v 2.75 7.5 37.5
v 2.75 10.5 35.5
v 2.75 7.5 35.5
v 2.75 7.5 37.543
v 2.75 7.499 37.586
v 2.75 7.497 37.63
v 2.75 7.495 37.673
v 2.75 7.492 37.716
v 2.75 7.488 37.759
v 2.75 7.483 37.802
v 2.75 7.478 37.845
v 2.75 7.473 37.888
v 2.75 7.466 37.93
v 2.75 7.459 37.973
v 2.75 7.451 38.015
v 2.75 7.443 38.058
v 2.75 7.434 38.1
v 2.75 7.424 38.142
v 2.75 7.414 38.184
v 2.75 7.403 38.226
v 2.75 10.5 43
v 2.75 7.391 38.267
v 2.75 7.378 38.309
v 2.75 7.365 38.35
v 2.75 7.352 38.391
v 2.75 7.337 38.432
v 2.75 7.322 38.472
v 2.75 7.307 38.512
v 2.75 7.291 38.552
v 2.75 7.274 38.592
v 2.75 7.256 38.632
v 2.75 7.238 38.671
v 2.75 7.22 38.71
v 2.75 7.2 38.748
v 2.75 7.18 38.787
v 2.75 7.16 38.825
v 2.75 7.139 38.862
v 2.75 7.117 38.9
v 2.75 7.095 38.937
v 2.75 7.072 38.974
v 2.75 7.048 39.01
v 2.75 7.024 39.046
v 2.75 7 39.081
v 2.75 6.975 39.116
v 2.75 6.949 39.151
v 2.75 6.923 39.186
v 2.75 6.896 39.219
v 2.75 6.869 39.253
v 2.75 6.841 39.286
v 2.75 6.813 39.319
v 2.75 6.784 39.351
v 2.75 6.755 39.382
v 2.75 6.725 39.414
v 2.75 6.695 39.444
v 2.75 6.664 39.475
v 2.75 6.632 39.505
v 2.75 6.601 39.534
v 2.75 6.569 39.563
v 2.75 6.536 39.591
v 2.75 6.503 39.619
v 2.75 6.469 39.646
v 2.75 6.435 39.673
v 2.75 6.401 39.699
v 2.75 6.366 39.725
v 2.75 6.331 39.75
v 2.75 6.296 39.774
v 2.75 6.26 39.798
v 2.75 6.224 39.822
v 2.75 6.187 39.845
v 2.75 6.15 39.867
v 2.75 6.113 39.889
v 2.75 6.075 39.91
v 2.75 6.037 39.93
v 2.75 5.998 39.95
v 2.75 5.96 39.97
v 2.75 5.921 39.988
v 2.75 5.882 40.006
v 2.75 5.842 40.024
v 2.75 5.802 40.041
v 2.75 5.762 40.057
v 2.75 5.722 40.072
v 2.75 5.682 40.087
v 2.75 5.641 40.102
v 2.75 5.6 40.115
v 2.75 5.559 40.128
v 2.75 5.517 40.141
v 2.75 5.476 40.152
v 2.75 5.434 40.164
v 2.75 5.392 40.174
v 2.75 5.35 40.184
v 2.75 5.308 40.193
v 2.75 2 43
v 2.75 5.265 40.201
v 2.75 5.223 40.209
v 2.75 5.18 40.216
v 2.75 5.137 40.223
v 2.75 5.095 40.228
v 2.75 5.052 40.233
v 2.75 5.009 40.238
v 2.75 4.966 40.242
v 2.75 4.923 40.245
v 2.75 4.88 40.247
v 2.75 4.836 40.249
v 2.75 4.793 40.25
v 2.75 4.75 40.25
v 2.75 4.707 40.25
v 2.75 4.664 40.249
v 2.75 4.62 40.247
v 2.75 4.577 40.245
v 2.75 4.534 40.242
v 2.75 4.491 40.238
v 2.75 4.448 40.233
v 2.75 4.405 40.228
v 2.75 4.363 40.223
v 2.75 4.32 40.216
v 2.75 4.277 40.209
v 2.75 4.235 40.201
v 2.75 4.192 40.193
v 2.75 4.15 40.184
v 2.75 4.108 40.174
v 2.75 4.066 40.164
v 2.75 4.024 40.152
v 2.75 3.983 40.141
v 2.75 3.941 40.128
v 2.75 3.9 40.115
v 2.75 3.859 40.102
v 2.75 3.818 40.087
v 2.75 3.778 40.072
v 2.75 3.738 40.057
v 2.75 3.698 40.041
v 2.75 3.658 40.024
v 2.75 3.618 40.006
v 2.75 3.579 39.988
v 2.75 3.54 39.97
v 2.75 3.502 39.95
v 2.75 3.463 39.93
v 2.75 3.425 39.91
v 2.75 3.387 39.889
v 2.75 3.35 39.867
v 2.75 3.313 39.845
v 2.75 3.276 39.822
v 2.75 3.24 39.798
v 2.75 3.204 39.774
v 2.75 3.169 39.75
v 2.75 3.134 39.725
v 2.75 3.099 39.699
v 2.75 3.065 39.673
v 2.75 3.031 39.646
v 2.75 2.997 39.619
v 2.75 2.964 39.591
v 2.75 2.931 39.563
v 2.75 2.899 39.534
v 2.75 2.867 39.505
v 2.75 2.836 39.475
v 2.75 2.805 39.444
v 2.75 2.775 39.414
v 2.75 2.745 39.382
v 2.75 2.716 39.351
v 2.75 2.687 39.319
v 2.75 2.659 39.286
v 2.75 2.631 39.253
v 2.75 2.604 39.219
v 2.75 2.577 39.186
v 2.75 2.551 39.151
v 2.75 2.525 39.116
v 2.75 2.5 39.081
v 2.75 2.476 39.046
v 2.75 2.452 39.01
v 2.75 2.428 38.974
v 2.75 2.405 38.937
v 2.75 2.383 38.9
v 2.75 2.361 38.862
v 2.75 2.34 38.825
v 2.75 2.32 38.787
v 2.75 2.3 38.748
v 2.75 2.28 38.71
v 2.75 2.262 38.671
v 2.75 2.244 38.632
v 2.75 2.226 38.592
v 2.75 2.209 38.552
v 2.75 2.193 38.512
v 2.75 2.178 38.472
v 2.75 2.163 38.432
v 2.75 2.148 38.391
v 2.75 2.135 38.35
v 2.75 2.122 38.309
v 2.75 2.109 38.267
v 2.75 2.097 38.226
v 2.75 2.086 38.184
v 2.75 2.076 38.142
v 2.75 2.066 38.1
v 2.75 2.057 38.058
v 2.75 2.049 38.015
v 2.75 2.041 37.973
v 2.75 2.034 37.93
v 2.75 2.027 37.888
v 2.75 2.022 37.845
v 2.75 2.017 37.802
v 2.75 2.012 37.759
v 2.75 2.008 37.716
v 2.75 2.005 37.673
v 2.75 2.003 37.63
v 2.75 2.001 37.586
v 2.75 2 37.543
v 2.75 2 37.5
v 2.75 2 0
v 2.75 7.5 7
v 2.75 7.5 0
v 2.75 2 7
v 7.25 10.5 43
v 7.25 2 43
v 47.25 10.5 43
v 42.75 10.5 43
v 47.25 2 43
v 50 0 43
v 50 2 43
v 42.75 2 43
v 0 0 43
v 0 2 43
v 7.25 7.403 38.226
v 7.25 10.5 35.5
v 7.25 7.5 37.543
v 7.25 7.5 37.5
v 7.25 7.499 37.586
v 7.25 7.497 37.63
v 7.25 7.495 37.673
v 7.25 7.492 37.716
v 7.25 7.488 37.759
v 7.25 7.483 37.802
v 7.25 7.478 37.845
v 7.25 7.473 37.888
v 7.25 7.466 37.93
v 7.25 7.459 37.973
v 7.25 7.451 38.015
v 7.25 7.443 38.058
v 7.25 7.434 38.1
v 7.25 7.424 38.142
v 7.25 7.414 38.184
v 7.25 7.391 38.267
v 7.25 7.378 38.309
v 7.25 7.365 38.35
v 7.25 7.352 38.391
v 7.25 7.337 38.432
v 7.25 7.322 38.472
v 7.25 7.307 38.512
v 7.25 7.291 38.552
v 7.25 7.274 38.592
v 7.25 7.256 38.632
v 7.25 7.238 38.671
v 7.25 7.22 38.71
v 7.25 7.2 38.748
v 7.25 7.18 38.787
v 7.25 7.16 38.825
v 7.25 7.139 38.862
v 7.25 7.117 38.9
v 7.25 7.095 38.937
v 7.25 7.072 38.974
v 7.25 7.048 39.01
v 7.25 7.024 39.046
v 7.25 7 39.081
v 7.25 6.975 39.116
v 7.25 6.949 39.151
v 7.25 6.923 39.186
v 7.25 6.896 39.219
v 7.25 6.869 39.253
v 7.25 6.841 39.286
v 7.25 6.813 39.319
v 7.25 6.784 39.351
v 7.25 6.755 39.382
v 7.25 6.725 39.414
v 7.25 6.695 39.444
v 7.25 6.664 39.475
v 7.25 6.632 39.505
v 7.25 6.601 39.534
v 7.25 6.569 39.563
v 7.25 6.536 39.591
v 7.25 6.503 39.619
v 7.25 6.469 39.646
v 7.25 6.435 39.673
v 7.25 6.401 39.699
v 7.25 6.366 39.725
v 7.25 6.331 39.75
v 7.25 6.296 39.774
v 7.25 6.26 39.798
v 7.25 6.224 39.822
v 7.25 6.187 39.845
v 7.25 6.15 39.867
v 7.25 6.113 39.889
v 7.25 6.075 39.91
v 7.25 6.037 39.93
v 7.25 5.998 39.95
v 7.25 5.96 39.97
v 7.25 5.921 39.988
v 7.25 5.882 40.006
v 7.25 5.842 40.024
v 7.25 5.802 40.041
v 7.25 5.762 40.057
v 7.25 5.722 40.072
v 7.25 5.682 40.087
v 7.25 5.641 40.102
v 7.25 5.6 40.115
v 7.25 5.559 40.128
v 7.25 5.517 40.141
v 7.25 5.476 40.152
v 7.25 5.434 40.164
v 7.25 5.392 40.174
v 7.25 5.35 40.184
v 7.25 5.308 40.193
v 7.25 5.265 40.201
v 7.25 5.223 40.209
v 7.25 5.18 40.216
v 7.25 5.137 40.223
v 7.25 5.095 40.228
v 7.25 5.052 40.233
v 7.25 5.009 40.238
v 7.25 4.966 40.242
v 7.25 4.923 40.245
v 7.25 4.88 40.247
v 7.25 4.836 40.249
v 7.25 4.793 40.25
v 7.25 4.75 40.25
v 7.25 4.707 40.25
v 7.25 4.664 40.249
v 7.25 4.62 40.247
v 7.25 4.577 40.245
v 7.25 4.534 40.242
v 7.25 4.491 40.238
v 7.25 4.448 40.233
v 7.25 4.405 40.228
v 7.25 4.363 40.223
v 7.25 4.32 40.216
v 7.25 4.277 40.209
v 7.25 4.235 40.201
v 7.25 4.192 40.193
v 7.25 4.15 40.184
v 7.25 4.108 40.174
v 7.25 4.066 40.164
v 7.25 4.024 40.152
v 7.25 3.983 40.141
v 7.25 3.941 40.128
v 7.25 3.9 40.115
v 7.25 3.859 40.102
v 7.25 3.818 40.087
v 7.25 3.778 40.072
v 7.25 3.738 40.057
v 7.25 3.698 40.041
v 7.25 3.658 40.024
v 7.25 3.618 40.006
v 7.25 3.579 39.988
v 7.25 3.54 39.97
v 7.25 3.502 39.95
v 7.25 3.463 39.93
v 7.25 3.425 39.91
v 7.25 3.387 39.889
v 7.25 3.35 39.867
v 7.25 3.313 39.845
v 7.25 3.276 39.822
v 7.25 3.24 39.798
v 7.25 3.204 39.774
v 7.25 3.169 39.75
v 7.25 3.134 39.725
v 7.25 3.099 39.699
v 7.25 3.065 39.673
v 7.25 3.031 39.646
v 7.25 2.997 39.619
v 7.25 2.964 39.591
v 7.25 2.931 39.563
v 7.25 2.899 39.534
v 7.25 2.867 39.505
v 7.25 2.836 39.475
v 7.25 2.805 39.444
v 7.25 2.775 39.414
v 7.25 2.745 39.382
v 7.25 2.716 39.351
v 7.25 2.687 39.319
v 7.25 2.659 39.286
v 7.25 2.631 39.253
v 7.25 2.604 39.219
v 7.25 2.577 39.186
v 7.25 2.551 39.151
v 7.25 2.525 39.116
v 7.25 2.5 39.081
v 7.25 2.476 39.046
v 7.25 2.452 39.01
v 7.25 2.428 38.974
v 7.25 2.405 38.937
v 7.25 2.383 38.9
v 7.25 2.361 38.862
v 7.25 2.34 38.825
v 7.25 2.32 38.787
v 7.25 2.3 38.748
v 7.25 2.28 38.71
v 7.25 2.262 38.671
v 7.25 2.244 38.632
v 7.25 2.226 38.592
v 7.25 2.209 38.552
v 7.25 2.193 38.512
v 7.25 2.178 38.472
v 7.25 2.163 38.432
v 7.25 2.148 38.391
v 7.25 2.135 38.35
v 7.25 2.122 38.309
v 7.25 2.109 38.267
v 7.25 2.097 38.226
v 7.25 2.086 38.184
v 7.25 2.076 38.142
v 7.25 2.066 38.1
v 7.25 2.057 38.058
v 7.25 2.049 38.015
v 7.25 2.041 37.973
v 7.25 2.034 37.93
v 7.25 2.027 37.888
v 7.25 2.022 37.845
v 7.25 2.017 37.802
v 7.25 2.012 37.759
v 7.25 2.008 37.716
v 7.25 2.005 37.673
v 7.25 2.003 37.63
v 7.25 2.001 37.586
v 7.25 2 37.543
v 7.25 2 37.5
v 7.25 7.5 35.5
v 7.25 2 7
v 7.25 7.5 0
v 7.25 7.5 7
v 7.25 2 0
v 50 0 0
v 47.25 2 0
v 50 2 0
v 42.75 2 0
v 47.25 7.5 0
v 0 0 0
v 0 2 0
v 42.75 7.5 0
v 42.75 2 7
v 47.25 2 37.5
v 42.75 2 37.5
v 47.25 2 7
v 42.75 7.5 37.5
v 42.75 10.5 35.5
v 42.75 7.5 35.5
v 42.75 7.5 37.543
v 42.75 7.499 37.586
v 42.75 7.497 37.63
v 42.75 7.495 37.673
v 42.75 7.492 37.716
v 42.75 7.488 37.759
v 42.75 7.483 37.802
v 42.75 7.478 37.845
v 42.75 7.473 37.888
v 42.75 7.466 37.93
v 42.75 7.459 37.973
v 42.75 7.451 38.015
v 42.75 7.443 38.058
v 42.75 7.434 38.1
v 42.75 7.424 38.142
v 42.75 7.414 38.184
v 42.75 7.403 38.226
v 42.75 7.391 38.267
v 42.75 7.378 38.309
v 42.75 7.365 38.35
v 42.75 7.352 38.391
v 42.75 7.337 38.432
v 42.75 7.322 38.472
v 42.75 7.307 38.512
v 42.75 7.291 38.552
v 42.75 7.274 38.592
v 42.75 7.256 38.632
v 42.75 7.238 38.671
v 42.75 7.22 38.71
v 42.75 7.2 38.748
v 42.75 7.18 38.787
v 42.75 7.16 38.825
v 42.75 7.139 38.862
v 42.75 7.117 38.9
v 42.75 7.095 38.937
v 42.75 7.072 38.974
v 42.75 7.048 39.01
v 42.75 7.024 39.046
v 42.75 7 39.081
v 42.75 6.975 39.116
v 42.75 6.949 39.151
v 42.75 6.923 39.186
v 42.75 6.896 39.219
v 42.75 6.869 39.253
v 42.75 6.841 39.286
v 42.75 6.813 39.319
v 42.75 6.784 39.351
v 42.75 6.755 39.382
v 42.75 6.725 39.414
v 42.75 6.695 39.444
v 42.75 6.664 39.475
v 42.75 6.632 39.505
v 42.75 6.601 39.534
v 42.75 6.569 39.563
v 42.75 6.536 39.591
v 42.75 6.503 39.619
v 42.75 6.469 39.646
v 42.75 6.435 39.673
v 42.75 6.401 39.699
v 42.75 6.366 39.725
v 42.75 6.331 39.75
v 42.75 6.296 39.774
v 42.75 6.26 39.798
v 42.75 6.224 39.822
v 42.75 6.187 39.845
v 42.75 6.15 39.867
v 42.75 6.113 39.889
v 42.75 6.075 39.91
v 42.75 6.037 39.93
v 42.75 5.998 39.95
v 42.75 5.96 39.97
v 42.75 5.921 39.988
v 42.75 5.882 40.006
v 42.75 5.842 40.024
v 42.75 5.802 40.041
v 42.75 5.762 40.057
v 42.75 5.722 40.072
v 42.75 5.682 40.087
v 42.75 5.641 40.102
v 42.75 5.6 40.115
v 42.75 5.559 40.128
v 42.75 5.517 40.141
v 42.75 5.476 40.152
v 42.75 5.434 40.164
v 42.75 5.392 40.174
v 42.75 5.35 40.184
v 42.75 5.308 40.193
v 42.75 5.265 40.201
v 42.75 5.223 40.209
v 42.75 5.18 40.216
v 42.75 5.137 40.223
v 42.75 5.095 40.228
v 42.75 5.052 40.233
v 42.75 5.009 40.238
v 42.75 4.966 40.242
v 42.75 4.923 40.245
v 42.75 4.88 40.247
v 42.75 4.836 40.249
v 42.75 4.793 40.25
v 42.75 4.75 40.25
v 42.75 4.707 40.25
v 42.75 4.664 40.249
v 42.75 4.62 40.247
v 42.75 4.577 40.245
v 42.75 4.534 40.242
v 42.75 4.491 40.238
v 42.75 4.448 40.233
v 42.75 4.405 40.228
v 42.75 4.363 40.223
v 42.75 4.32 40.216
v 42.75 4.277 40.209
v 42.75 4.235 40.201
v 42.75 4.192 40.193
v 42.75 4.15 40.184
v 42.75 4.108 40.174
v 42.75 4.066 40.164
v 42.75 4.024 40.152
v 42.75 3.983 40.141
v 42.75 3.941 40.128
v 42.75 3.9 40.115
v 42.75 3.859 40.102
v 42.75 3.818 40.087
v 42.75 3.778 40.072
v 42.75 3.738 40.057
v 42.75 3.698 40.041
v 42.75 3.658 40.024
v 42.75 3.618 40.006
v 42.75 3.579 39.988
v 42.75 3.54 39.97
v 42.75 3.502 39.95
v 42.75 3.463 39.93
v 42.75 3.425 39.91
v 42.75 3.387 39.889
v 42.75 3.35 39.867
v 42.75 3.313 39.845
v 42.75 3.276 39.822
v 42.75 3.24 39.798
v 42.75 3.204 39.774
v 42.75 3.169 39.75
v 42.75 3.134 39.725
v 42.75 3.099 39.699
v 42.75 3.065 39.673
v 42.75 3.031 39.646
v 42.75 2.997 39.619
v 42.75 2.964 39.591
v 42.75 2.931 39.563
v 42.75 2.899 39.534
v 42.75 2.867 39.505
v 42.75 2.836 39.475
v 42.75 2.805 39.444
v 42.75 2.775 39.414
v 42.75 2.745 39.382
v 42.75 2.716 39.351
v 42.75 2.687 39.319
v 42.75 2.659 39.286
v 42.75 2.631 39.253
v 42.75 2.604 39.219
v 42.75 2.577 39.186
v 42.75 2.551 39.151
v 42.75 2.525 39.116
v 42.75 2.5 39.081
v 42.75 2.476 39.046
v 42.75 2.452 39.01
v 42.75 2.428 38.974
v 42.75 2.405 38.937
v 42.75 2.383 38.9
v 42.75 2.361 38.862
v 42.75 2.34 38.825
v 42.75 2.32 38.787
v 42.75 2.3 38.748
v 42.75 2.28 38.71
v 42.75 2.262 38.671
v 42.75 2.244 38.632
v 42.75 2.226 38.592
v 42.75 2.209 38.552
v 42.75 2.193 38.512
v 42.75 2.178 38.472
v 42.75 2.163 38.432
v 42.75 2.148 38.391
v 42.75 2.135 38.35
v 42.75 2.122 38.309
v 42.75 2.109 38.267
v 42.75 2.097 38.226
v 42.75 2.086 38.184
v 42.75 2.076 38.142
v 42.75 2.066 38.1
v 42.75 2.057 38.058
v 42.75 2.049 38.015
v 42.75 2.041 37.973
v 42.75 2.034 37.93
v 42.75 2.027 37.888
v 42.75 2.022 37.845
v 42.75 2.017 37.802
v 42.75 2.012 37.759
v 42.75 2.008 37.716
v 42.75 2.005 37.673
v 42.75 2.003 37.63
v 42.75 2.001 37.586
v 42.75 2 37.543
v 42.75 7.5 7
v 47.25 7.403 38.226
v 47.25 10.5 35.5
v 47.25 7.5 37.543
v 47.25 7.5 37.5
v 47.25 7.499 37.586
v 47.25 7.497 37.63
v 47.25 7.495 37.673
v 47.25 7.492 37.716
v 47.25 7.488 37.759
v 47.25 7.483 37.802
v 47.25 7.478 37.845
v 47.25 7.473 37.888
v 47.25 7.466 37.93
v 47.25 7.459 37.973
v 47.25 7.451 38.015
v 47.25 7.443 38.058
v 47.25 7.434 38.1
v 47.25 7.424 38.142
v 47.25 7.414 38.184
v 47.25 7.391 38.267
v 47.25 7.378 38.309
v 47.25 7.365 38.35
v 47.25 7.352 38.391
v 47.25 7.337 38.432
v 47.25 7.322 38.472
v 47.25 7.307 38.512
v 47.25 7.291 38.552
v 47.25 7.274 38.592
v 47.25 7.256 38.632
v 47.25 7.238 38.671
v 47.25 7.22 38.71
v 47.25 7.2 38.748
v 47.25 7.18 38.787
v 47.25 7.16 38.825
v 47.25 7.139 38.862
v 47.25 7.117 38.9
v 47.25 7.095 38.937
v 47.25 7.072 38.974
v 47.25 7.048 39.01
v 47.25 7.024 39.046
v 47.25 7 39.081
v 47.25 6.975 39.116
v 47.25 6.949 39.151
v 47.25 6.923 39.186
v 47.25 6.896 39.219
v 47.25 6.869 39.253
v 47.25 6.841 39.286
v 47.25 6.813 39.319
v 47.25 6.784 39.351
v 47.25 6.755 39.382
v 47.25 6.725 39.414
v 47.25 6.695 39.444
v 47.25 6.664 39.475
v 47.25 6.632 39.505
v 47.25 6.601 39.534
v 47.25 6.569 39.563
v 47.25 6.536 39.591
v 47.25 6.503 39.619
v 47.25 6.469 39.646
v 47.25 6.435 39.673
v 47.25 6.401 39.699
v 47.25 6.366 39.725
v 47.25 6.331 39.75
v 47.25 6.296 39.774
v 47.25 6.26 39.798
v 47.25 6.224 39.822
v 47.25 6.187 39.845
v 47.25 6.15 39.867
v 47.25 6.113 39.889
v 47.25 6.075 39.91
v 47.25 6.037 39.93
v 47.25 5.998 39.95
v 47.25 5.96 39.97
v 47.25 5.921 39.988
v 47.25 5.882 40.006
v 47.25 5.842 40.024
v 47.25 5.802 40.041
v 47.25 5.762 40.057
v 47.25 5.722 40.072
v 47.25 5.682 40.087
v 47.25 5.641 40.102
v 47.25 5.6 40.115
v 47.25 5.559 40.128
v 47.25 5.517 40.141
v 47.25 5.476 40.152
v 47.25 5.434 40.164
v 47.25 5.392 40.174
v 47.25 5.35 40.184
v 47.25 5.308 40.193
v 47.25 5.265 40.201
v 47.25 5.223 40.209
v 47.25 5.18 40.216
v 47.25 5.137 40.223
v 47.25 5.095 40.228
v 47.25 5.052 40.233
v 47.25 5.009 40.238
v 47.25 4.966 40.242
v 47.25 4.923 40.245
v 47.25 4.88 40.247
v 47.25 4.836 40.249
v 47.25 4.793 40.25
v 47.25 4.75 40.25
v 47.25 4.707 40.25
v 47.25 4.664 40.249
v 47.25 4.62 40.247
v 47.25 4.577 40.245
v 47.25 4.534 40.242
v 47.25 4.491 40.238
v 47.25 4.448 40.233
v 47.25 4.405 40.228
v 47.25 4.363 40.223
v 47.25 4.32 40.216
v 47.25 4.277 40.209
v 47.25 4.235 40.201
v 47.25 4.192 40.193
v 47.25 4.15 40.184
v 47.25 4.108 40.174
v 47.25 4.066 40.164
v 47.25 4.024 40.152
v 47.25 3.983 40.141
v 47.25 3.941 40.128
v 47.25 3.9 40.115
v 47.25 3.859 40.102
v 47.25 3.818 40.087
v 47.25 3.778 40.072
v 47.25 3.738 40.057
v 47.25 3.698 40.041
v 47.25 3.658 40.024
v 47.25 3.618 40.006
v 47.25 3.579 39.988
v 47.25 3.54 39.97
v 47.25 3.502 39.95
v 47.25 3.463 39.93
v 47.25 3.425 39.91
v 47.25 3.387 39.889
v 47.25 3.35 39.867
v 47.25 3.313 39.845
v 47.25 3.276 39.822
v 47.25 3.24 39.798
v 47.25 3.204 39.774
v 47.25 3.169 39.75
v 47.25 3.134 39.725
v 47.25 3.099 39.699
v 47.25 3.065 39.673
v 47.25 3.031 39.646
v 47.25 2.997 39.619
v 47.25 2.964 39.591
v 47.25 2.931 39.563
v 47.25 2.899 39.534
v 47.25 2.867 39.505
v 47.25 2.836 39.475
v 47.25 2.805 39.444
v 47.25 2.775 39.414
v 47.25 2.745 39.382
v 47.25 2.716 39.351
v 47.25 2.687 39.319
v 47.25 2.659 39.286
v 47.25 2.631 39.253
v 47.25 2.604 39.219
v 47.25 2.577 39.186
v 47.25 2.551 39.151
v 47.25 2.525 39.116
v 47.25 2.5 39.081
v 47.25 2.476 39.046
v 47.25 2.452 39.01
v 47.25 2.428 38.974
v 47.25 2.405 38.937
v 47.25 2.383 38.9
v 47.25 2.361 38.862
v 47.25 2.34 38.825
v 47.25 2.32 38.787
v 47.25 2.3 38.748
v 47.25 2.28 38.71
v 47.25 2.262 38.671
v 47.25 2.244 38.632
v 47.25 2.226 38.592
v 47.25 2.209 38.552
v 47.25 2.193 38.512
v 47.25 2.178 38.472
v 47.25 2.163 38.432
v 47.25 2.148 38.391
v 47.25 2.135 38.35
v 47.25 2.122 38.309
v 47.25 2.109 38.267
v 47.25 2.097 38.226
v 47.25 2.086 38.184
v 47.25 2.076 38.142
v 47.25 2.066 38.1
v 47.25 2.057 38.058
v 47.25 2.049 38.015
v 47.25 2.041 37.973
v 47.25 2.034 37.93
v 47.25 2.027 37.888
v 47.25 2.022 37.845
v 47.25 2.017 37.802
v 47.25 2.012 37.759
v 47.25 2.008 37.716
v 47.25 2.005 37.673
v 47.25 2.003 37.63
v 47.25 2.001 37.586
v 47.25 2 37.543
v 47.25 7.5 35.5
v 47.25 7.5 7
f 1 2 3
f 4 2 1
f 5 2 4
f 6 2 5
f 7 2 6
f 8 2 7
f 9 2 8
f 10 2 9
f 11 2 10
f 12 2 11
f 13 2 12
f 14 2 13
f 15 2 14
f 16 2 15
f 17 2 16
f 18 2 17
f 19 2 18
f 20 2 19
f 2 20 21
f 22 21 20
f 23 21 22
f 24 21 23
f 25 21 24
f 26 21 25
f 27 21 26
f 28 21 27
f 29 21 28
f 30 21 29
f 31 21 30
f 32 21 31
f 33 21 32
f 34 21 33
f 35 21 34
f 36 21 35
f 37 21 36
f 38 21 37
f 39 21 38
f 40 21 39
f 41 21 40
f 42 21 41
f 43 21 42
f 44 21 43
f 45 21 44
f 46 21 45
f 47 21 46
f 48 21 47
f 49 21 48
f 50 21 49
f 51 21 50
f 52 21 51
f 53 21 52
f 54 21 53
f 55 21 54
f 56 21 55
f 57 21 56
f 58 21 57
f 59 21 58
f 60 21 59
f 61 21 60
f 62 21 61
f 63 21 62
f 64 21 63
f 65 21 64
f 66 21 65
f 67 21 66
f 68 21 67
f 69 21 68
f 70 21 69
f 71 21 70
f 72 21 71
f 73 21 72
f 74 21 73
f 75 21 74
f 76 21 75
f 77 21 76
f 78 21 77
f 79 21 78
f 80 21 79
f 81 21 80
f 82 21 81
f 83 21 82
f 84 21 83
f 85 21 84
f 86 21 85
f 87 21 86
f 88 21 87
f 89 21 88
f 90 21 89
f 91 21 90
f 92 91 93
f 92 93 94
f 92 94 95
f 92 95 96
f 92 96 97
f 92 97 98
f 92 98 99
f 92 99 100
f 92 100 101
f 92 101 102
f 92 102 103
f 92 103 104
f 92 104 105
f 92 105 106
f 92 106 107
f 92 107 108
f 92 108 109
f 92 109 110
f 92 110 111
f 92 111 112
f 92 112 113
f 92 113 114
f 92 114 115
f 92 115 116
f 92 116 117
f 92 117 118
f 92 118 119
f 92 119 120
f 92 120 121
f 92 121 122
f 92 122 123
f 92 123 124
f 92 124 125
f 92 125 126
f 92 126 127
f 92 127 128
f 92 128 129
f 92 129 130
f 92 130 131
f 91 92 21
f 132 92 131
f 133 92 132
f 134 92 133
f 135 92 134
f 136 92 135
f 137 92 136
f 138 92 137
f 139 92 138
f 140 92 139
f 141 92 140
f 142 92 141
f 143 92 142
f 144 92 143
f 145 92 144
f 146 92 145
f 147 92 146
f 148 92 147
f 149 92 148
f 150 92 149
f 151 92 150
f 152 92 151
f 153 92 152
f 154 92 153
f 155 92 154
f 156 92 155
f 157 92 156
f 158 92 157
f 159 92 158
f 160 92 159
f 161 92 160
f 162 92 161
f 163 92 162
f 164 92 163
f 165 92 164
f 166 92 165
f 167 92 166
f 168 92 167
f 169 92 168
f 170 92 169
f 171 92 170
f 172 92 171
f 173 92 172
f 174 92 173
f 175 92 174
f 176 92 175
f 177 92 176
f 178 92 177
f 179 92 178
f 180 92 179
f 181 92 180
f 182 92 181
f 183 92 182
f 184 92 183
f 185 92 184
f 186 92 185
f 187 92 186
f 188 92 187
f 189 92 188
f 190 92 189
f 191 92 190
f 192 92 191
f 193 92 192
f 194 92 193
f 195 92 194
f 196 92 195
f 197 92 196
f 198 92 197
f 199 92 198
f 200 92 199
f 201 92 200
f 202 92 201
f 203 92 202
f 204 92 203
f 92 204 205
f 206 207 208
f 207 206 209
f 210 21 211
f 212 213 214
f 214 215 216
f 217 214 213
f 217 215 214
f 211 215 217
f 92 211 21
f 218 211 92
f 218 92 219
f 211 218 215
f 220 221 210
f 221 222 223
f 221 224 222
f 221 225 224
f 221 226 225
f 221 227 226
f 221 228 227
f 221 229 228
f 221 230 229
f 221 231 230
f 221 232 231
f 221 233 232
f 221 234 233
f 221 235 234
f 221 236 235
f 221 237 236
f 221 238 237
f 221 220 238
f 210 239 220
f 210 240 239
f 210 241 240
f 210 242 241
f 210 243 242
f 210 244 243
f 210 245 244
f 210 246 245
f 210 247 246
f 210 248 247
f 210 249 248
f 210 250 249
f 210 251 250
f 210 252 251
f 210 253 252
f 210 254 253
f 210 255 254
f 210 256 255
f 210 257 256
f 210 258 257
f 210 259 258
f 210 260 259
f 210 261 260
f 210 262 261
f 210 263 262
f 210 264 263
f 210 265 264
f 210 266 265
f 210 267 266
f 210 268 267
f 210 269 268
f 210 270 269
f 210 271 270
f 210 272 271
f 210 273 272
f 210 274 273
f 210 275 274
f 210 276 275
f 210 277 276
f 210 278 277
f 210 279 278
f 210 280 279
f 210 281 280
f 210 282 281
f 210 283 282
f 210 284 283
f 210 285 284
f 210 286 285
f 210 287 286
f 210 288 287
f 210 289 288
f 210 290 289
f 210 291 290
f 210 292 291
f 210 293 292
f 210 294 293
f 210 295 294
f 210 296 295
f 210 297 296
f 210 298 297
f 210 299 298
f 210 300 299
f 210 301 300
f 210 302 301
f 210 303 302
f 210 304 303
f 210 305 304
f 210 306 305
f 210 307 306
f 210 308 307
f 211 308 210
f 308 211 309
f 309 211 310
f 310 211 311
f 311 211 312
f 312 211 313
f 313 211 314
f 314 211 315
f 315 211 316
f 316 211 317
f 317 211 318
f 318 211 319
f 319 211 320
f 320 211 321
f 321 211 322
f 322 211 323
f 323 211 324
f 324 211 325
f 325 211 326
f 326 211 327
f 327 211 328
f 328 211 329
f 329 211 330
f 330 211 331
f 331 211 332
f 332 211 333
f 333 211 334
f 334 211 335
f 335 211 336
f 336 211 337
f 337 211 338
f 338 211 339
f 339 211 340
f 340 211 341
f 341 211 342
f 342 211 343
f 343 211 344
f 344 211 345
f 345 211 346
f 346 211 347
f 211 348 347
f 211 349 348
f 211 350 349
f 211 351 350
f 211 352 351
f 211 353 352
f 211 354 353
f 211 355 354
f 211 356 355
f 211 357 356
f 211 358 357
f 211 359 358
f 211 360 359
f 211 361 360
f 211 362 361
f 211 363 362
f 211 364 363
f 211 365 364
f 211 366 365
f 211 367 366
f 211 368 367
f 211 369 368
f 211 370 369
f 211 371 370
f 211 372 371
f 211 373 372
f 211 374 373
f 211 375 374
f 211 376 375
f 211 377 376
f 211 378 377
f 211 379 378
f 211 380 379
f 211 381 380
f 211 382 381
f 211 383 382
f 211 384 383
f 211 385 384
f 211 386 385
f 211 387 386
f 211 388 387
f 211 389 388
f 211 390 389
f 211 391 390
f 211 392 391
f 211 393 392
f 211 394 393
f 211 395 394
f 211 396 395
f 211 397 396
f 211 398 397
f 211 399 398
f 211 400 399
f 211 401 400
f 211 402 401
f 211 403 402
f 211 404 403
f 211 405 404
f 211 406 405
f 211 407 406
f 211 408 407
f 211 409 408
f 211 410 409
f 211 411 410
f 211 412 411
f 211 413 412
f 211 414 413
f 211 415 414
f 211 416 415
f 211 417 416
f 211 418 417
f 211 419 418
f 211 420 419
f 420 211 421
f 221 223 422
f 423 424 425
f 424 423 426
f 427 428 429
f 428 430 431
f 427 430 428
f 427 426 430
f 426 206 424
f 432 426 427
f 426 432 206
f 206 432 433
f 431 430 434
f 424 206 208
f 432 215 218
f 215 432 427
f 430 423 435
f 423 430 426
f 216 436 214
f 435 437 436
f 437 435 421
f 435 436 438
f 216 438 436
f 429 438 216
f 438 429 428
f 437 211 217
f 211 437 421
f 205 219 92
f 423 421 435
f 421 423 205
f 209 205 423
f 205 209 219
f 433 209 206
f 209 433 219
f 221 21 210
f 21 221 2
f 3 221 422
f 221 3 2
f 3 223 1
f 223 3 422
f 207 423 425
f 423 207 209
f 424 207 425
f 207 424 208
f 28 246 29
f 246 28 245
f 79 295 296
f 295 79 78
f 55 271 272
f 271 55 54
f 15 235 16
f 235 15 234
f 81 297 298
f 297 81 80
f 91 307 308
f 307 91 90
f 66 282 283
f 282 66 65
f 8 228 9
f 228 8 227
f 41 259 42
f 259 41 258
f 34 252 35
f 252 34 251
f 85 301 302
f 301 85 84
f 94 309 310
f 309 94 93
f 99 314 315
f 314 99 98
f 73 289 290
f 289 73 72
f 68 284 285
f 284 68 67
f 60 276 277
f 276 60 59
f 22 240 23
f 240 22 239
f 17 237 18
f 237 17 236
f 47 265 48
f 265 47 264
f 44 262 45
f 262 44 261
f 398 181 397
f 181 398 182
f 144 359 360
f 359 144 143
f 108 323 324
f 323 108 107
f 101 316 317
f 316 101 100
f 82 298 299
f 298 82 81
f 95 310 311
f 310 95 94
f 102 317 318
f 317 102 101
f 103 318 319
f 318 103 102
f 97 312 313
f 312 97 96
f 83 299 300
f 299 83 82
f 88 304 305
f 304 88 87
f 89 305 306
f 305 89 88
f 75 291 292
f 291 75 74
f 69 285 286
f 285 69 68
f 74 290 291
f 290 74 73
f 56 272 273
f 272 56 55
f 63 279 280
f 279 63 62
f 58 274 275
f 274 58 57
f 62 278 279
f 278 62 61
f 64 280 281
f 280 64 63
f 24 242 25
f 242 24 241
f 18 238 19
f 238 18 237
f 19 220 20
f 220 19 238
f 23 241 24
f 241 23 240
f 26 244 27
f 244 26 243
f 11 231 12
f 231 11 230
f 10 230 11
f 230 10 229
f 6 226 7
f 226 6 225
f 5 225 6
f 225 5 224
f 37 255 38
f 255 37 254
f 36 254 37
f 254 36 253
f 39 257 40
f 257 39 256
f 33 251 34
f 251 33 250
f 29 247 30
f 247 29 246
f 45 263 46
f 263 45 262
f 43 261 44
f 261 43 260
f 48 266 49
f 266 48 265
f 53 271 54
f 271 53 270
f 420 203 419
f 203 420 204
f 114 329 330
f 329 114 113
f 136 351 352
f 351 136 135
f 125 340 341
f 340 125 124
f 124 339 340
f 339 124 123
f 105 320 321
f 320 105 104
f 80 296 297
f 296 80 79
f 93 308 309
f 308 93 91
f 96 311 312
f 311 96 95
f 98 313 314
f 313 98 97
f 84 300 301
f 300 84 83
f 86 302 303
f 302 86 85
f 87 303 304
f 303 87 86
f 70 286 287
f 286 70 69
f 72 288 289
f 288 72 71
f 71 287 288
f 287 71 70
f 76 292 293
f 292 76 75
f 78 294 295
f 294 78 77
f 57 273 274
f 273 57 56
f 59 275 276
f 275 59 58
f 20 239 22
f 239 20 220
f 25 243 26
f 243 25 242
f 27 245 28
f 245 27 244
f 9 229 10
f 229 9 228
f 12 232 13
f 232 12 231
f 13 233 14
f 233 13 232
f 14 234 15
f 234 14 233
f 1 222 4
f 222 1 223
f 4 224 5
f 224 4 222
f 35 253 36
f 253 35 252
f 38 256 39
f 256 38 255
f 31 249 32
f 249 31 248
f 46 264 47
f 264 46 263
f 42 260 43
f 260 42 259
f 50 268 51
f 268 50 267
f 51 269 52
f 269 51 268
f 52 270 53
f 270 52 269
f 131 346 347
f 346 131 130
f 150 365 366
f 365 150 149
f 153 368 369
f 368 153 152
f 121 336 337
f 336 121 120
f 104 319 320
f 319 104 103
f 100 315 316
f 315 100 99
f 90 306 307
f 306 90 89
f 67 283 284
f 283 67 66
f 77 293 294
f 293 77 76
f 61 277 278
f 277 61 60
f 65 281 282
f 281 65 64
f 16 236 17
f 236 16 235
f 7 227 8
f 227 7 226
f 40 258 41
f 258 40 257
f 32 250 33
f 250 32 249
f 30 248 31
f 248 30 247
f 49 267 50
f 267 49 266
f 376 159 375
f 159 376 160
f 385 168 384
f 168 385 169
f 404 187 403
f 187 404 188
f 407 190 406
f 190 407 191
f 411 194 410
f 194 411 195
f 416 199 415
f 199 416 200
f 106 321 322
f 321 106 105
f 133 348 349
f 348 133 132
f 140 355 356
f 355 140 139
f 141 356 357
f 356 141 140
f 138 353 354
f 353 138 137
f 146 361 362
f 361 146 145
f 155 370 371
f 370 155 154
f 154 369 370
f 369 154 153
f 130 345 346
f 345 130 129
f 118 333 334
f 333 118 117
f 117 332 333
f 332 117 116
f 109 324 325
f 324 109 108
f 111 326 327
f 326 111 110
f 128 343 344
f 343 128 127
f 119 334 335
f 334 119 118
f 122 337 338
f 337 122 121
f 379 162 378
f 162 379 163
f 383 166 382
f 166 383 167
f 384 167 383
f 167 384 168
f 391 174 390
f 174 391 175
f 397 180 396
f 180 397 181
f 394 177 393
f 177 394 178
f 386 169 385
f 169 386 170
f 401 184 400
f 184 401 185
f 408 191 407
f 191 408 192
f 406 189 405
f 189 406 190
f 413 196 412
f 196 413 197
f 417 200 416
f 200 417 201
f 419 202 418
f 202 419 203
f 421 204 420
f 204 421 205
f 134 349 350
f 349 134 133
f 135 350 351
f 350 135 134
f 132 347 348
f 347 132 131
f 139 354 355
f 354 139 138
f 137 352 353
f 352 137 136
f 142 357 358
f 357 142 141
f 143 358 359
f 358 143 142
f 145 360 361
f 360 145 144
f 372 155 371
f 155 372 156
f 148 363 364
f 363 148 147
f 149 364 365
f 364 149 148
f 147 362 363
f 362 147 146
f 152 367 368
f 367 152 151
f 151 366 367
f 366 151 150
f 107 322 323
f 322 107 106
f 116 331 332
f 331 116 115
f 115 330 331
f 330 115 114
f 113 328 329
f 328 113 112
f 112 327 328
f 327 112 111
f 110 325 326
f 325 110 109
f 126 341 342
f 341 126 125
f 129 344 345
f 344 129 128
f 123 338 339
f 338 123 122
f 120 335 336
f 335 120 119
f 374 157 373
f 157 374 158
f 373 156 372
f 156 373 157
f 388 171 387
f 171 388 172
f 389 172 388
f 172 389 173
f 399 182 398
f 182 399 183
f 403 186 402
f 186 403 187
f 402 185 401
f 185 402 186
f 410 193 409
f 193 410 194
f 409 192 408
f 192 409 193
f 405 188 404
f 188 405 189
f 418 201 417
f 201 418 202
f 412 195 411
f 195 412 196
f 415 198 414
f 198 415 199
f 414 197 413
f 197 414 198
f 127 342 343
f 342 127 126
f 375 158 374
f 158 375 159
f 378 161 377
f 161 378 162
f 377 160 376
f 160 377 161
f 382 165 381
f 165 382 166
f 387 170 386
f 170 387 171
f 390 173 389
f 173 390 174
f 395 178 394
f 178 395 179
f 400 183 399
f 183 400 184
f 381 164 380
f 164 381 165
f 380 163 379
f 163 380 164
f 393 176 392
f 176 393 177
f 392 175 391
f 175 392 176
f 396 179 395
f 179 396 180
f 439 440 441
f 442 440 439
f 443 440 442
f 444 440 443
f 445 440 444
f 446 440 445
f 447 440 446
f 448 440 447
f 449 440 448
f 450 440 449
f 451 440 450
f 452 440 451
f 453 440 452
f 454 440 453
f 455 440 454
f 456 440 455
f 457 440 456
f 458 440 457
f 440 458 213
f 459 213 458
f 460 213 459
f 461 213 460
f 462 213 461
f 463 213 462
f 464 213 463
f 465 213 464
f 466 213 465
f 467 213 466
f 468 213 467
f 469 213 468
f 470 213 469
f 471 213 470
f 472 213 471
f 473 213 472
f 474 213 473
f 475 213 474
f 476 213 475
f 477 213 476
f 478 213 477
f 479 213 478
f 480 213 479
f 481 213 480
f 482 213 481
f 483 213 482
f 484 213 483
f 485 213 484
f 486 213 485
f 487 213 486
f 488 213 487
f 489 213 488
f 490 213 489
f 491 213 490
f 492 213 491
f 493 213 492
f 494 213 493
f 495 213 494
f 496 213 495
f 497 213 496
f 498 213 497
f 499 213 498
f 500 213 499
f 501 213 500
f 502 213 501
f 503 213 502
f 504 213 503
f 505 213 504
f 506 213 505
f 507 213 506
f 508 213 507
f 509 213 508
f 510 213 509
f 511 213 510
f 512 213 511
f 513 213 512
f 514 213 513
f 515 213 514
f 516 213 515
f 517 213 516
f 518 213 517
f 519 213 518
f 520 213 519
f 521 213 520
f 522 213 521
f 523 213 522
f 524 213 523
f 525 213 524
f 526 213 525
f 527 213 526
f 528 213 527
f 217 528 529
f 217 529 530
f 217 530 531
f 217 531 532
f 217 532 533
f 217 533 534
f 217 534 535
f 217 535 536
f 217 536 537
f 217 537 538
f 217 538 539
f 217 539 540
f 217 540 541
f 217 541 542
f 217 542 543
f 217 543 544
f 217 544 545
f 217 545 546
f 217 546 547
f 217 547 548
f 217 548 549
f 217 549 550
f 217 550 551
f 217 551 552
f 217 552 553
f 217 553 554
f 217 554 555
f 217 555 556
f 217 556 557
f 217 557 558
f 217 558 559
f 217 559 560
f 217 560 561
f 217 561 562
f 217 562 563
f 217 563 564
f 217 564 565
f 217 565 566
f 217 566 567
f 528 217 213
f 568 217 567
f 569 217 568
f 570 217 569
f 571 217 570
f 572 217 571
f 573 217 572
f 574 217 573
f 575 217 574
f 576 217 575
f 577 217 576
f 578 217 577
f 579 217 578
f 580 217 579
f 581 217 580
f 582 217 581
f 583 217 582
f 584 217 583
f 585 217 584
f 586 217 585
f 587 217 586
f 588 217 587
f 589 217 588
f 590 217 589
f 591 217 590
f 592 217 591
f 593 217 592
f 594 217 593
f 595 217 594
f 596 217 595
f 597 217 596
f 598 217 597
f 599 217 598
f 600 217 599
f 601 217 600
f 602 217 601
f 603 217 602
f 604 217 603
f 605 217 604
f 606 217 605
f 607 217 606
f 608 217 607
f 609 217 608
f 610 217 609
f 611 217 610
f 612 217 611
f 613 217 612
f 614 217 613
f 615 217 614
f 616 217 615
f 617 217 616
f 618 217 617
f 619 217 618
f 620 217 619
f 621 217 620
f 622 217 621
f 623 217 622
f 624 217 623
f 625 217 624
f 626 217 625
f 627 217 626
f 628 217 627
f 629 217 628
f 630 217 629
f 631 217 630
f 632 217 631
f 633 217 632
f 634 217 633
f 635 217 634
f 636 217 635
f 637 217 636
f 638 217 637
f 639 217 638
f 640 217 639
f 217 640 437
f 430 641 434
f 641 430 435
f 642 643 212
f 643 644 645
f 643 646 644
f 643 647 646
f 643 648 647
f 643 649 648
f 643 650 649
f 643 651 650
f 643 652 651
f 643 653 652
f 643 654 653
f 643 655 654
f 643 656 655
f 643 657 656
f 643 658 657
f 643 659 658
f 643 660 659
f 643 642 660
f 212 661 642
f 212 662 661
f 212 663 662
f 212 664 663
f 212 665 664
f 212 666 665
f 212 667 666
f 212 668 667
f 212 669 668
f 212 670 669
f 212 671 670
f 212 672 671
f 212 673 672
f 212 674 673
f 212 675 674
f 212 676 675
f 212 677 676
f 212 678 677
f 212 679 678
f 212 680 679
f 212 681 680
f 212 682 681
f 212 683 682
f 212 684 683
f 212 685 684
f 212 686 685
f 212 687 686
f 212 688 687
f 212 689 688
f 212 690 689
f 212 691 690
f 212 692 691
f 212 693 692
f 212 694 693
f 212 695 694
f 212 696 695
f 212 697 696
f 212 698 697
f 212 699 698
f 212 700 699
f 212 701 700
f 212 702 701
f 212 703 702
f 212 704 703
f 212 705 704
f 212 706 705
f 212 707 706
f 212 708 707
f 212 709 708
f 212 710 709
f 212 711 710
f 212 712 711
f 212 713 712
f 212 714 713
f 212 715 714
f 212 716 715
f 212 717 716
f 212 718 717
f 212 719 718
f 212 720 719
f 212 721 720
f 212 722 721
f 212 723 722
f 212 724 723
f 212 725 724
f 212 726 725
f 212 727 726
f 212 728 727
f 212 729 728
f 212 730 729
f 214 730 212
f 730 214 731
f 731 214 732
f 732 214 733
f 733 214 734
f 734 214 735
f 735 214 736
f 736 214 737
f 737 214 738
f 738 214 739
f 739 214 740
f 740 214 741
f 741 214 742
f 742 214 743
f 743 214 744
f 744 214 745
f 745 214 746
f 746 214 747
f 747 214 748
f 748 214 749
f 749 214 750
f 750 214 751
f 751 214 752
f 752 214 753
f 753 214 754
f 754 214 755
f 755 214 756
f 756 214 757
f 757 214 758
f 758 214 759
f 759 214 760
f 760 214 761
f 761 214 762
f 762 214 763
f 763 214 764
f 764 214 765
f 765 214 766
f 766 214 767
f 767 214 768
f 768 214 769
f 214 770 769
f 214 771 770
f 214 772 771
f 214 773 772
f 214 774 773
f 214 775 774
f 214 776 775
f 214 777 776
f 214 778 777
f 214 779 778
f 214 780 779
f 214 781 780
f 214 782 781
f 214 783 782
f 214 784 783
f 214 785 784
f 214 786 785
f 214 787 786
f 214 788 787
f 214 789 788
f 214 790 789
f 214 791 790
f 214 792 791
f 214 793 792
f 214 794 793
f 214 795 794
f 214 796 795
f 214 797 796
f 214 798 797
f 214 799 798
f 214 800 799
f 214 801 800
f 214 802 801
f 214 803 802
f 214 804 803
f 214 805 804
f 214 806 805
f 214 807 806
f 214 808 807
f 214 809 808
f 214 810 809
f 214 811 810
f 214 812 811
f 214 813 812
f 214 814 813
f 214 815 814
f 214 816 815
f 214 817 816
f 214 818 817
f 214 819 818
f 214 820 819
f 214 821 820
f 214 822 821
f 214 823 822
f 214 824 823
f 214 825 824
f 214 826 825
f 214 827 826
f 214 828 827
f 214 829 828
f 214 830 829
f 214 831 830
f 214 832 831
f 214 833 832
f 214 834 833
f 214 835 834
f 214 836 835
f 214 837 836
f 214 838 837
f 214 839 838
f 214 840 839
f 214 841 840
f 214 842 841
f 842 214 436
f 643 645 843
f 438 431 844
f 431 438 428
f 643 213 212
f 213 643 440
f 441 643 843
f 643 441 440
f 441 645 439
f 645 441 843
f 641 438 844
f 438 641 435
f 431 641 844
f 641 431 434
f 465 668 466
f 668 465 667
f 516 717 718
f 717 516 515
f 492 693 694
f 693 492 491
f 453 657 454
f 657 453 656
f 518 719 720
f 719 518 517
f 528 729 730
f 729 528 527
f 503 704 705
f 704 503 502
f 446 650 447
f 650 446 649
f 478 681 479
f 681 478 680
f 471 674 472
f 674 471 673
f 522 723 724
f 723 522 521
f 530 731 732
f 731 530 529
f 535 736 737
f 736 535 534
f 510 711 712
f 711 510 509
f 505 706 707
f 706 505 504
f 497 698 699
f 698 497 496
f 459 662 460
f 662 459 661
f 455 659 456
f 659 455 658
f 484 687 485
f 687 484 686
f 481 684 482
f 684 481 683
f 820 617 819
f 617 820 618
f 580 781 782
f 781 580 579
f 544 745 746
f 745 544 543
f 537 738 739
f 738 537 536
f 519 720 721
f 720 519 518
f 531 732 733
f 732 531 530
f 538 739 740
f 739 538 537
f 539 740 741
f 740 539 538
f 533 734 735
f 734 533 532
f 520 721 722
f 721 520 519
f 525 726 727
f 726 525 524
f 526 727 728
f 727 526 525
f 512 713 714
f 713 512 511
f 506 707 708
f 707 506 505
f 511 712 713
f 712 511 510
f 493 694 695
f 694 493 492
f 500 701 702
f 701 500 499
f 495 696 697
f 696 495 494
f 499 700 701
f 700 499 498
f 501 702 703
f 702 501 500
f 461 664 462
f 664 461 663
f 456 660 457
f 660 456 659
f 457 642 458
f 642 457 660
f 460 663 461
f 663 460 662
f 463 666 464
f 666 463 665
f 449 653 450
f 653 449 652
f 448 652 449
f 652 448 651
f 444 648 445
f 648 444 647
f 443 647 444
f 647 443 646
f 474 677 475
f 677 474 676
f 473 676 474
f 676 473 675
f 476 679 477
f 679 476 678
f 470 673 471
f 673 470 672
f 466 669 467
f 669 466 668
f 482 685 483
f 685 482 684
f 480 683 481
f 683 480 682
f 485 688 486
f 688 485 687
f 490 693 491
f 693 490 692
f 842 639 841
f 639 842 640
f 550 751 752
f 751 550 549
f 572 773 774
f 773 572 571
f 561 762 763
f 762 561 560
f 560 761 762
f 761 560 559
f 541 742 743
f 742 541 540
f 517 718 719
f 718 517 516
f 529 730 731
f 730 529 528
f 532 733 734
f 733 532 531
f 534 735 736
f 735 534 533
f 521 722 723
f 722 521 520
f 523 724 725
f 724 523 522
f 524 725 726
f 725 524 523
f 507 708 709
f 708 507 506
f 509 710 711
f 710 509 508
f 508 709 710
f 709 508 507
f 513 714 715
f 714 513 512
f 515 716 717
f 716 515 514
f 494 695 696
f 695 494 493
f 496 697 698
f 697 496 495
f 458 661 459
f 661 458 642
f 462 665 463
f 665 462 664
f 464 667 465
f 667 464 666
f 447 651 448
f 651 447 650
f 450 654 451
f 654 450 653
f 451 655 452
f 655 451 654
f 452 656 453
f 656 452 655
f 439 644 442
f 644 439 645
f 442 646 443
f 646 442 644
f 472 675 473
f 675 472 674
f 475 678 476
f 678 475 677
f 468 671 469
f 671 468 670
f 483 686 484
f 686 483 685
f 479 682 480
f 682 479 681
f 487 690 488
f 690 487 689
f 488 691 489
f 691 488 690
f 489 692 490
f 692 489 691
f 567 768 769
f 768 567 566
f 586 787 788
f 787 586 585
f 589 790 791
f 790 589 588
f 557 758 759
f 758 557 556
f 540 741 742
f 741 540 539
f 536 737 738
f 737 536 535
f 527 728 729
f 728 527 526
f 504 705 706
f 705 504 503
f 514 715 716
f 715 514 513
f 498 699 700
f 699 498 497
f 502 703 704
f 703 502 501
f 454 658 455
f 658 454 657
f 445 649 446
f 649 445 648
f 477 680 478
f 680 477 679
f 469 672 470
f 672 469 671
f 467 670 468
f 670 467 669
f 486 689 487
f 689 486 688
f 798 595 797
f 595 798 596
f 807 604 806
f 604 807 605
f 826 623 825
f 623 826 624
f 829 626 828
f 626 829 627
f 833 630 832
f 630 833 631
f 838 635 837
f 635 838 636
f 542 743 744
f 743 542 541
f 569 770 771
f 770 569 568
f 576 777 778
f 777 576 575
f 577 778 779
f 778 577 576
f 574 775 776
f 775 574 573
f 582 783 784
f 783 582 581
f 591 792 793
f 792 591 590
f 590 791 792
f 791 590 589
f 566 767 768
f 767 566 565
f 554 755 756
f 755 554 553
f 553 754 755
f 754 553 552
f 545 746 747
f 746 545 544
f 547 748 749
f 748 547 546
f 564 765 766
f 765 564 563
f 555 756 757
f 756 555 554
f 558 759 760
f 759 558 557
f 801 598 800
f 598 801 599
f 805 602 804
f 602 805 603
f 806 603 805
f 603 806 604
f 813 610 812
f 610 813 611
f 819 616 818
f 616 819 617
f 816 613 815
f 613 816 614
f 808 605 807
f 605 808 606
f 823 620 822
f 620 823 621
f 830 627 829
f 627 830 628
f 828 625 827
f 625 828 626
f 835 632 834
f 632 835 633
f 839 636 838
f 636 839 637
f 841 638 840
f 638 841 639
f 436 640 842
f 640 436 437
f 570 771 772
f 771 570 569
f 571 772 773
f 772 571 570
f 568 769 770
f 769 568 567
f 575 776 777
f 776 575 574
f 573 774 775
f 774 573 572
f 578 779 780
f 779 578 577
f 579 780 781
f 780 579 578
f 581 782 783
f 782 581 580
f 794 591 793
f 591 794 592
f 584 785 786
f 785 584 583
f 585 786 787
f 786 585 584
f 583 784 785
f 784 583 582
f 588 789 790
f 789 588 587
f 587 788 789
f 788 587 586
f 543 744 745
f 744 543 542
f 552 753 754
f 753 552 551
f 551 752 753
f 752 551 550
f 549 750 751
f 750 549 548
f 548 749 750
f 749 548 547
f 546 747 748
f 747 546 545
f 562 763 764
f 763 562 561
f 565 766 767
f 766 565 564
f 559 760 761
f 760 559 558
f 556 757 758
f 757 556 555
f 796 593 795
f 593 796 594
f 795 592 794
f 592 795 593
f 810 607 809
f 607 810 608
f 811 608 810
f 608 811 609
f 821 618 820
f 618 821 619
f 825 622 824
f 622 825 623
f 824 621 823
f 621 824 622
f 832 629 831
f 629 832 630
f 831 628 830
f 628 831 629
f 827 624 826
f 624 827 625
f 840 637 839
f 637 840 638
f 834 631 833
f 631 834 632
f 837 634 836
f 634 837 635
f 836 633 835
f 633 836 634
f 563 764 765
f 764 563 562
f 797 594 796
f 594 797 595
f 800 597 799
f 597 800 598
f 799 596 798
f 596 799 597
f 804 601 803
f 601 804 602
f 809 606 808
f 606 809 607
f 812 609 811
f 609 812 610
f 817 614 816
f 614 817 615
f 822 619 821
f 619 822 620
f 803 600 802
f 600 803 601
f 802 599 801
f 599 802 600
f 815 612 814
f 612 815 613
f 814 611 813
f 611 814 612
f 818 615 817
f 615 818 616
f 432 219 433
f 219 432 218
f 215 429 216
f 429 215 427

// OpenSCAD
// file: IKEA Skadis include holder.scad
$fn=400;

sh_height=43;
sh_width=4.5;
sh_hanger_spacing=5.5;
sh_material_size=2;
sh_short_tail=2;

module ikea_skadis_holder() {
    difference() {
        union() {
            
            //Vertical wall
            color("green")
            cube([sh_width,sh_material_size,sh_height]);
            
            // Retainer
            color("blue")
            translate([0,0,sh_height-sh_hanger_spacing])
            cube([sh_width,sh_hanger_spacing+sh_material_size*2+1,sh_hanger_spacing]);
            
            //Vertical wall (short)
            color("cyan")
            translate([0, sh_hanger_spacing+sh_material_size,sh_height-sh_short_tail-sh_hanger_spacing])
            cube([sh_width,sh_material_size+1,sh_short_tail]);

            //Schnöpsel
            color("yellow")
            translate([0, sh_material_size,0])
            cube([sh_width,sh_hanger_spacing,7]);
        }
        
        
    color("red")
    translate([-1,sh_material_size+sh_hanger_spacing/2,sh_height-sh_hanger_spacing])
    rotate([0,90,0])
    cylinder(sh_width+2, sh_hanger_spacing/2, sh_hanger_spacing/2);
        
    }
}
ikea_skadis_holder();
// file: IKEA Skadis include backwall with 2 hooks.scad
$fn=400;

sh_holder_thickness = 4.5;
sh_holder_height = 43;

use <./IKEA Skadis include holder.scad>

module ikea_skadis_backwall(width, height) {
    union() {

        width = width > 43  ? width : 44;

        // backwall
        cube([width,2,height]);

        if(height < sh_holder_height) {
            // holder left
            translate([width/2-sh_holder_thickness/2-20,0,0])
            ikea_skadis_holder();

            // holder right
            translate([width/2-sh_holder_thickness/2+20,0,0])
            ikea_skadis_holder();
        } else {
            // holder left
            translate([width/2-sh_holder_thickness/2-20,0,height-sh_holder_height])
            ikea_skadis_holder();

            // holder right
            translate([width/2-sh_holder_thickness/2+20,0,height-sh_holder_height])
            ikea_skadis_holder();
        }
    }
}

ikea_skadis_backwall(24,43);
// main file
$fn=400;

ibh_width = 50;
ibh_height = 50;
ibh_depth = 25;

use <./IKEA Skadis include backwall with 2 hooks.scad>

ikea_skadis_backwall(ibh_width, 43, 0);
